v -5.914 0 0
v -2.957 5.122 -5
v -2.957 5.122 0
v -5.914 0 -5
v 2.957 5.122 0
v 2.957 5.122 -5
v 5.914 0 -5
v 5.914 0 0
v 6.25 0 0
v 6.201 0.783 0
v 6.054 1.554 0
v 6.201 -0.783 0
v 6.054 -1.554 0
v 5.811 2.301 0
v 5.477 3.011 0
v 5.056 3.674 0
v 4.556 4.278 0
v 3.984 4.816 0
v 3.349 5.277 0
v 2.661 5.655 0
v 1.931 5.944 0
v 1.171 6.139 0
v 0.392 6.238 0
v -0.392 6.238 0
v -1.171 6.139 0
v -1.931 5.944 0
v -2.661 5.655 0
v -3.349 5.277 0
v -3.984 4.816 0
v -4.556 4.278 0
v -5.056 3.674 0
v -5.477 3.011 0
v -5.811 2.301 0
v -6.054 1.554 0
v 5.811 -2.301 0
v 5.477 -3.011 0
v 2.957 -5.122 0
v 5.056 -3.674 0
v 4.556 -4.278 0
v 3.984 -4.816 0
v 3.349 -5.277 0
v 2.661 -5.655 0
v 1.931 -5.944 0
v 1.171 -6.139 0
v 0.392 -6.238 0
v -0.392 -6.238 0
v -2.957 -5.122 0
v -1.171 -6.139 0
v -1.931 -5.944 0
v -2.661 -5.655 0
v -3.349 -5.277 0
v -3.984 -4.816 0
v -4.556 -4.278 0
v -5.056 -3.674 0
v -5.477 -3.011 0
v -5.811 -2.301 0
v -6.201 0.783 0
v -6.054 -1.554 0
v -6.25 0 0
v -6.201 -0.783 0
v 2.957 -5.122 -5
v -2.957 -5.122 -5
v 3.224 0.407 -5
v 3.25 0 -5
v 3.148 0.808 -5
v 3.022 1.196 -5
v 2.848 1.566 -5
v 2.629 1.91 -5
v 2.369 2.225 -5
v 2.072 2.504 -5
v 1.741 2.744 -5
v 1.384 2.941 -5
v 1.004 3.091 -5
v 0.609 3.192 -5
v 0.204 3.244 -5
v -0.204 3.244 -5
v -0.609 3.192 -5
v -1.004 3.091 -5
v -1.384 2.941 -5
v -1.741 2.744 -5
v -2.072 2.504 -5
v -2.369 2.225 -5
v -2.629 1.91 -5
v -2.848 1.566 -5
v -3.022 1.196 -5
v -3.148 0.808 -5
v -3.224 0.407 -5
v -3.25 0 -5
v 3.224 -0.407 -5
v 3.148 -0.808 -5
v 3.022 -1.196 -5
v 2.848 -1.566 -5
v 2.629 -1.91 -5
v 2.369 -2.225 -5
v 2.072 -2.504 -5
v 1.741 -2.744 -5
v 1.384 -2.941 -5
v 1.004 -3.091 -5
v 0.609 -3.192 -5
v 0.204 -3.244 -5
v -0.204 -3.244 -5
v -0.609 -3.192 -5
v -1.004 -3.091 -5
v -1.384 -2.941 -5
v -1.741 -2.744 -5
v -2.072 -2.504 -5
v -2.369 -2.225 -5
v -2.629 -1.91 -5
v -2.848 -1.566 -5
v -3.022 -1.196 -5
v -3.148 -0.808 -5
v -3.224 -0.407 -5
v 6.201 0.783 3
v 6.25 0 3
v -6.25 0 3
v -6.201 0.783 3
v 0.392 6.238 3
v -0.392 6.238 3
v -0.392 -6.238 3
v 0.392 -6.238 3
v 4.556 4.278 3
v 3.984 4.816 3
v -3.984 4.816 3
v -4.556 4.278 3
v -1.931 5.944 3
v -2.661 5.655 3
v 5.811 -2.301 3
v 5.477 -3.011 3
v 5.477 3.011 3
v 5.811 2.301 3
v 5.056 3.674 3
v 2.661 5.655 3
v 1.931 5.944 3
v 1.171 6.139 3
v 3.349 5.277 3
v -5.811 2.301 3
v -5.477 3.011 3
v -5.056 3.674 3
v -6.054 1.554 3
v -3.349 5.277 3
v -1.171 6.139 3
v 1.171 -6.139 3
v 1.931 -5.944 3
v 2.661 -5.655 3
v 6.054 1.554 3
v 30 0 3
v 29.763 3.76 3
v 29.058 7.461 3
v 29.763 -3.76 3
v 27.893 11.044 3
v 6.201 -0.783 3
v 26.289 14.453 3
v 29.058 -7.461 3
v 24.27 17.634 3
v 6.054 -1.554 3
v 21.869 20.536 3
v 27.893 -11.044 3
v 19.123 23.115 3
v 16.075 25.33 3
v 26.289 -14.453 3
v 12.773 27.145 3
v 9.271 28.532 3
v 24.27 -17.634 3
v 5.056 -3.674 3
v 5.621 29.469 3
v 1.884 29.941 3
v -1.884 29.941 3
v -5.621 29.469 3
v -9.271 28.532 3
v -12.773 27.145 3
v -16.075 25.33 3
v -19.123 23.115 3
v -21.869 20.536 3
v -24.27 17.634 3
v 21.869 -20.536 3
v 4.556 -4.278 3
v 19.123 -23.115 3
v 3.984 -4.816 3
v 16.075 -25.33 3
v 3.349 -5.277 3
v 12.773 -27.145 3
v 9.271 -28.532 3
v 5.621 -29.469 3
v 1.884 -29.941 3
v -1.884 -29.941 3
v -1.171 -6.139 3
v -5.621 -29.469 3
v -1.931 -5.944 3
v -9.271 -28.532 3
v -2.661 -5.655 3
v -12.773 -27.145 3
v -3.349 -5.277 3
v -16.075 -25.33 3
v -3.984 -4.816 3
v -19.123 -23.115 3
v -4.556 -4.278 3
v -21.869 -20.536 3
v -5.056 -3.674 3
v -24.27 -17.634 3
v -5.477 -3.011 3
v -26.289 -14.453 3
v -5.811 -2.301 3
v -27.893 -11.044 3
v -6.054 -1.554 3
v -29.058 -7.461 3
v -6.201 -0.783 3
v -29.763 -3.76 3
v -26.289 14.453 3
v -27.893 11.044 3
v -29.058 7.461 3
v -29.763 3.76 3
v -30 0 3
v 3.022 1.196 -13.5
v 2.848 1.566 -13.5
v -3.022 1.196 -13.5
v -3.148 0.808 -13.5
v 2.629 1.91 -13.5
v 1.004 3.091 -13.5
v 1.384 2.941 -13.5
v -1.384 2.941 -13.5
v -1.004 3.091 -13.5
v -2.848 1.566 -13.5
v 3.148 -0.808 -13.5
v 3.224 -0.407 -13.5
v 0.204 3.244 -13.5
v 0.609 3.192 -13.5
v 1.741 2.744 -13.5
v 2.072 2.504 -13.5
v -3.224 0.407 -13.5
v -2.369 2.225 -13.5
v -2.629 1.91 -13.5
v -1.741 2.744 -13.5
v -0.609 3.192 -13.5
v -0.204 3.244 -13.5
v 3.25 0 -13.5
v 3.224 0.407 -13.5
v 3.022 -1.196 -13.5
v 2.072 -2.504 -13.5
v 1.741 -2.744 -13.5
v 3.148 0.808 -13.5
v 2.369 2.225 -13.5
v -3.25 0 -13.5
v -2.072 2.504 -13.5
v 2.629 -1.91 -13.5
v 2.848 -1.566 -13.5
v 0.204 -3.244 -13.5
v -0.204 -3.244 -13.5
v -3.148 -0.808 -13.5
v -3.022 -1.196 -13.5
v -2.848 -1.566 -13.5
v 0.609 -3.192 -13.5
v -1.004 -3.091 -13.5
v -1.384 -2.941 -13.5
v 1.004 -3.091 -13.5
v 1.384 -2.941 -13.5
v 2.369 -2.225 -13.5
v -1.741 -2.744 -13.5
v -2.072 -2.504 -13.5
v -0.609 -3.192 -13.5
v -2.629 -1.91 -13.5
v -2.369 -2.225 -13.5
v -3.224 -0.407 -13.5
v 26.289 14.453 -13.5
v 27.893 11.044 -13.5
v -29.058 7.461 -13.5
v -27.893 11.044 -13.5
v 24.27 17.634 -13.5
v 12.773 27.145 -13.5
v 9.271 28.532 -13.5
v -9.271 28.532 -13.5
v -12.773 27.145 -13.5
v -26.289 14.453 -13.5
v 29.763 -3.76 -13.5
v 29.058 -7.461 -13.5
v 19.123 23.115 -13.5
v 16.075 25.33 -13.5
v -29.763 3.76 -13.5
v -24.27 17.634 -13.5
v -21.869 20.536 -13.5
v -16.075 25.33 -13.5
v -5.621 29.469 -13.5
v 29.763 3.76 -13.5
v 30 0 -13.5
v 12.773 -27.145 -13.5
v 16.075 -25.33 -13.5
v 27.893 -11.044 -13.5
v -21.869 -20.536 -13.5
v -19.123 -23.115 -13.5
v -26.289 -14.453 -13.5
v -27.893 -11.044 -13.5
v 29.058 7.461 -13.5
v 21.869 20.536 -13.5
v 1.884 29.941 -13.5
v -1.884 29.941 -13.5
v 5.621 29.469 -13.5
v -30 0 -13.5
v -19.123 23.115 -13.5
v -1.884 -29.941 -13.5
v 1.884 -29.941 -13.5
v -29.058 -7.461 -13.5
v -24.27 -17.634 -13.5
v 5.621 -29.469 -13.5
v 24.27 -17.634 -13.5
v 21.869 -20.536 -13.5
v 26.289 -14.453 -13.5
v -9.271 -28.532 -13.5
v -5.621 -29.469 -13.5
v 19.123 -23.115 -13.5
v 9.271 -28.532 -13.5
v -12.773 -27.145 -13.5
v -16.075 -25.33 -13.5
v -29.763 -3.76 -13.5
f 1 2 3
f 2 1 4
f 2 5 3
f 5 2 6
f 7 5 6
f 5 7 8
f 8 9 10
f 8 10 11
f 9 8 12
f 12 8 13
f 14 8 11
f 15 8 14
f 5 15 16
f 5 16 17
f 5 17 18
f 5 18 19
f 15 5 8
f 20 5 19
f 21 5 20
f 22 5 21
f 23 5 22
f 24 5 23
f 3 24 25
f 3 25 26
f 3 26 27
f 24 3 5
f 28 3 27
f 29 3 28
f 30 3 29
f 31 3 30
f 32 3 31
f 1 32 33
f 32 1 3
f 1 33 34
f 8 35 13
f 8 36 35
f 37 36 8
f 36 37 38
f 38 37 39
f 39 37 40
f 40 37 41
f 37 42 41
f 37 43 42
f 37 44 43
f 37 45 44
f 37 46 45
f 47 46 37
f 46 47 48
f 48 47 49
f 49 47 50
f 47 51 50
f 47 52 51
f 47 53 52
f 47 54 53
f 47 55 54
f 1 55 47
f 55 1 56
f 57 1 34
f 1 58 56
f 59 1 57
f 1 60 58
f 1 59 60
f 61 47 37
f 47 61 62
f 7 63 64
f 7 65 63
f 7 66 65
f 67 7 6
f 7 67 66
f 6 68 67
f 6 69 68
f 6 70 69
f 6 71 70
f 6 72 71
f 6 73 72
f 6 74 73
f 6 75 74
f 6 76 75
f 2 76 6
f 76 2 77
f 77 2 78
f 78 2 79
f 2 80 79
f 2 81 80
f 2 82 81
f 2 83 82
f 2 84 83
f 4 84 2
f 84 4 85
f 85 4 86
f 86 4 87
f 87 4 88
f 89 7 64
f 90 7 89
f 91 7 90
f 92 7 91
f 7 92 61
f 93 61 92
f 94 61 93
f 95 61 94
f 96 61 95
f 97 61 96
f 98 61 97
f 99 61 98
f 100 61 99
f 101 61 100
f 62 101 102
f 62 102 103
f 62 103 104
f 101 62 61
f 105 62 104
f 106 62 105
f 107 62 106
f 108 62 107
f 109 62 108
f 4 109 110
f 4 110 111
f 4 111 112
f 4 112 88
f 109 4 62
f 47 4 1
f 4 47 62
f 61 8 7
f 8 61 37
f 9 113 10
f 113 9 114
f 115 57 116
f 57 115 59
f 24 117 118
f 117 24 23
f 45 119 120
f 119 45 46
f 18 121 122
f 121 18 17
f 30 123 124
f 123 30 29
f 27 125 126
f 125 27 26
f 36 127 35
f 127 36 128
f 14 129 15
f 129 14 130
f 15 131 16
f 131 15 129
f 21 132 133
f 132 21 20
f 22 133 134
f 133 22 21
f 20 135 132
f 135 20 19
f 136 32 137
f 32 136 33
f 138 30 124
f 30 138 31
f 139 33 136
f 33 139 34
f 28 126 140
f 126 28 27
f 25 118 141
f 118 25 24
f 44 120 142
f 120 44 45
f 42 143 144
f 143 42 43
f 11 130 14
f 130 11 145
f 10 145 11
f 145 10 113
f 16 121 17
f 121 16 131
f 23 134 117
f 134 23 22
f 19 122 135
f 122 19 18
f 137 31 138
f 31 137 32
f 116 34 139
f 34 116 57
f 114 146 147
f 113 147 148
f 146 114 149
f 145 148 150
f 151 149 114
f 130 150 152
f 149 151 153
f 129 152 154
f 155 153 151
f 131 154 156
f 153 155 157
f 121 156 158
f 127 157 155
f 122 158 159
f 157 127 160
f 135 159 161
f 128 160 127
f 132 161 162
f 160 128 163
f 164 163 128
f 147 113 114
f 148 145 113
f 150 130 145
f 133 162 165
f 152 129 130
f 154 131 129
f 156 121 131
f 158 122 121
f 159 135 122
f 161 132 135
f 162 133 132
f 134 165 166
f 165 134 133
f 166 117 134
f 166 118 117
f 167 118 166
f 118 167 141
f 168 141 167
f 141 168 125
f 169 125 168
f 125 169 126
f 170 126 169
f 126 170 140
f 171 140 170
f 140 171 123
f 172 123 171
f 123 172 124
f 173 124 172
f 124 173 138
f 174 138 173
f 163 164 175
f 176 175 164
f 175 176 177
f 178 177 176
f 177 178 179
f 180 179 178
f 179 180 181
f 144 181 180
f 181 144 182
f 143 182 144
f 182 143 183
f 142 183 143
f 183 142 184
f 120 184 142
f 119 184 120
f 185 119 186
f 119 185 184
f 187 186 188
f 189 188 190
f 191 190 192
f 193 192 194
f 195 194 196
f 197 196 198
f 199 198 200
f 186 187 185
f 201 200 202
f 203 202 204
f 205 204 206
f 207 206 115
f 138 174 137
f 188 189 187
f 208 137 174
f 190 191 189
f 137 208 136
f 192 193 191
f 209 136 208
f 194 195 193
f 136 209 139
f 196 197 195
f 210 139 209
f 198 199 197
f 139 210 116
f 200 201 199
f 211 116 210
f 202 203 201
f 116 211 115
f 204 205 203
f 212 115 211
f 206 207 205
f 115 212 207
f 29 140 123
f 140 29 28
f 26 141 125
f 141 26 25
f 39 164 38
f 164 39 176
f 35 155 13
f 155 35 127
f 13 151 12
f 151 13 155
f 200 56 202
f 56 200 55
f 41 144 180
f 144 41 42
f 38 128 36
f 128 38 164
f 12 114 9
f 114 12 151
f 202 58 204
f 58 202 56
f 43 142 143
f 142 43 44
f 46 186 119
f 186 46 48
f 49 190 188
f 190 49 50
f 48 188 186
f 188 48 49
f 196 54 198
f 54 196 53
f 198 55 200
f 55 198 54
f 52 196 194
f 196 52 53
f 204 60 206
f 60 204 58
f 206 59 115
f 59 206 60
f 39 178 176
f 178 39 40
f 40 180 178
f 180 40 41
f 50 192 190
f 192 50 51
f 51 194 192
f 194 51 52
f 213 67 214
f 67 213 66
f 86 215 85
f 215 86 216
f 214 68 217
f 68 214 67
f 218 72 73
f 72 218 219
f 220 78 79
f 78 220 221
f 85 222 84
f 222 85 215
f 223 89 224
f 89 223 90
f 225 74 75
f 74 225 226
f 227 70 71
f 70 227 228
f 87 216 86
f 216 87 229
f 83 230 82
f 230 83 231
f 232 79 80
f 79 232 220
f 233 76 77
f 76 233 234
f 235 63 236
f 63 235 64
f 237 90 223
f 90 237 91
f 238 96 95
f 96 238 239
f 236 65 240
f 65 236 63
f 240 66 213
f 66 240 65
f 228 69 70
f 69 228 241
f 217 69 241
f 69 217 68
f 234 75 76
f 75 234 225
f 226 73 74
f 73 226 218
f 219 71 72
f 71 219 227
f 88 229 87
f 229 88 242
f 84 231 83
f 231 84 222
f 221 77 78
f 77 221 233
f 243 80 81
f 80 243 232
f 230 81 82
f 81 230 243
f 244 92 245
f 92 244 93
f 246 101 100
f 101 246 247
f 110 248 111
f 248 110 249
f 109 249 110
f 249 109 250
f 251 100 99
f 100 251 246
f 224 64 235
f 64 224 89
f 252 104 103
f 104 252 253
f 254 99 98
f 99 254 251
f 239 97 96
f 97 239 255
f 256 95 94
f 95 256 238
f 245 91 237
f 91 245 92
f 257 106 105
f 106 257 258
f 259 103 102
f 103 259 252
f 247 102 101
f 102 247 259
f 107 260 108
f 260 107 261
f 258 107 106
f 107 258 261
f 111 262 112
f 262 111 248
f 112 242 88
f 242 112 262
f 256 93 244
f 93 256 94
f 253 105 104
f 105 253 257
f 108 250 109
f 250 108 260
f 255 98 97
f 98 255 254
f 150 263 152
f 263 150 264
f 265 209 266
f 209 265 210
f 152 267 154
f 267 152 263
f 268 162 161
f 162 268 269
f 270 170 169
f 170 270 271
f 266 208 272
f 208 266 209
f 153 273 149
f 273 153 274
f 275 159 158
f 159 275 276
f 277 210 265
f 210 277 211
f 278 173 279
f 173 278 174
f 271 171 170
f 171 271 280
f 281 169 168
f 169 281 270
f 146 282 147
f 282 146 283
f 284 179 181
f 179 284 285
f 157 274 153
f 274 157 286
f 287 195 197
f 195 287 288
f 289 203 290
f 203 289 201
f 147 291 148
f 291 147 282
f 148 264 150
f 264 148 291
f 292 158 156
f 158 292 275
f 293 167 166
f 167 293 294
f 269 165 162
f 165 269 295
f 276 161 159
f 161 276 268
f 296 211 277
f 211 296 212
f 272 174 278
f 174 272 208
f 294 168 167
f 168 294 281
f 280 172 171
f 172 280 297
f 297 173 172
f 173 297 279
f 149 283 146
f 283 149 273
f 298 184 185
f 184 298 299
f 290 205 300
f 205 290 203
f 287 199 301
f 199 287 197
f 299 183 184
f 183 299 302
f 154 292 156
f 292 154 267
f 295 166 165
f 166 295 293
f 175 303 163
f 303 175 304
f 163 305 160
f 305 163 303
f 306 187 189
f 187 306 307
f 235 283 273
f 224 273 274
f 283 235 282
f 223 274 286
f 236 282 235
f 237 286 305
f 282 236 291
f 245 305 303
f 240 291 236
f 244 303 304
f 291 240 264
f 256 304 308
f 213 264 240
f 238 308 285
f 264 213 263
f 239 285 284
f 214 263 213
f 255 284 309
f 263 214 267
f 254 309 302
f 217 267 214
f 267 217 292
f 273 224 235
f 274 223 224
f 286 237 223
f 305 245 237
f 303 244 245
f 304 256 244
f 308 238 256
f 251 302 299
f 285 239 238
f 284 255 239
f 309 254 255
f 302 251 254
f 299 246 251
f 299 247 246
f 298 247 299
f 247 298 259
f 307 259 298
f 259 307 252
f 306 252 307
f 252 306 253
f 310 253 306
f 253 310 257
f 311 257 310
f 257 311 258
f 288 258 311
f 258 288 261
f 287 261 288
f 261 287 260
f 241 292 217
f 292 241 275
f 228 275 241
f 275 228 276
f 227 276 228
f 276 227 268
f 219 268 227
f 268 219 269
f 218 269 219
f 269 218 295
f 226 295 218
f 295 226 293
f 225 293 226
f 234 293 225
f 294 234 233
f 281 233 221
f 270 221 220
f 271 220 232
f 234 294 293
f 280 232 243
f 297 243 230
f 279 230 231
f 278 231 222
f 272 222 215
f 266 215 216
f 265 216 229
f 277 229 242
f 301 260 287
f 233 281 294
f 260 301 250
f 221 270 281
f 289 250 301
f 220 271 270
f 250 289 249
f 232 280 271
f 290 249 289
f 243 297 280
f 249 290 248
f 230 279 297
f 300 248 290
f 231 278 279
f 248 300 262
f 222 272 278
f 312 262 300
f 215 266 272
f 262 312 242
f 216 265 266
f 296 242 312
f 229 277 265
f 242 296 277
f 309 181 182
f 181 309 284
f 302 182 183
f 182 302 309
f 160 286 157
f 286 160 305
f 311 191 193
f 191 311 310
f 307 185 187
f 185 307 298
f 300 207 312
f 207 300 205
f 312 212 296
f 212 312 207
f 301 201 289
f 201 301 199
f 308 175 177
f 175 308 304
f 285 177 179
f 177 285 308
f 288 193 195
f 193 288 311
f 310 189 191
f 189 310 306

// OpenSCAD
$fn = 50;


difference() {
	union() {
		translate(v = [0, 0, -13.5000000000]) {
			cylinder(h = 16.5000000000, r = 30.0000000000);
		}
	}
	union() {
		translate(v = [0, 0, 0]) {
			rotate(a = [0, 0, 0]) {
				difference() {
					union() {
						translate(v = [0, 0, -5]) {
							linear_extrude(height = 5) {
								polygon(points = [[5.9142500000, 0.0000000000], [2.9571250000, 5.1218907443], [-2.9571250000, 5.1218907443], [-5.9142500000, 0.0000000000], [-2.9571250000, -5.1218907443], [2.9571250000, -5.1218907443]]);
							}
						}
					}
					union();
				}
			}
		}
		#cylinder(h = 3, r = 6.2500000000);
		#translate(v = [0, 0, -100.0000000000]) {
			cylinder(h = 200, r = 3.2500000000);
		}
	}
}
